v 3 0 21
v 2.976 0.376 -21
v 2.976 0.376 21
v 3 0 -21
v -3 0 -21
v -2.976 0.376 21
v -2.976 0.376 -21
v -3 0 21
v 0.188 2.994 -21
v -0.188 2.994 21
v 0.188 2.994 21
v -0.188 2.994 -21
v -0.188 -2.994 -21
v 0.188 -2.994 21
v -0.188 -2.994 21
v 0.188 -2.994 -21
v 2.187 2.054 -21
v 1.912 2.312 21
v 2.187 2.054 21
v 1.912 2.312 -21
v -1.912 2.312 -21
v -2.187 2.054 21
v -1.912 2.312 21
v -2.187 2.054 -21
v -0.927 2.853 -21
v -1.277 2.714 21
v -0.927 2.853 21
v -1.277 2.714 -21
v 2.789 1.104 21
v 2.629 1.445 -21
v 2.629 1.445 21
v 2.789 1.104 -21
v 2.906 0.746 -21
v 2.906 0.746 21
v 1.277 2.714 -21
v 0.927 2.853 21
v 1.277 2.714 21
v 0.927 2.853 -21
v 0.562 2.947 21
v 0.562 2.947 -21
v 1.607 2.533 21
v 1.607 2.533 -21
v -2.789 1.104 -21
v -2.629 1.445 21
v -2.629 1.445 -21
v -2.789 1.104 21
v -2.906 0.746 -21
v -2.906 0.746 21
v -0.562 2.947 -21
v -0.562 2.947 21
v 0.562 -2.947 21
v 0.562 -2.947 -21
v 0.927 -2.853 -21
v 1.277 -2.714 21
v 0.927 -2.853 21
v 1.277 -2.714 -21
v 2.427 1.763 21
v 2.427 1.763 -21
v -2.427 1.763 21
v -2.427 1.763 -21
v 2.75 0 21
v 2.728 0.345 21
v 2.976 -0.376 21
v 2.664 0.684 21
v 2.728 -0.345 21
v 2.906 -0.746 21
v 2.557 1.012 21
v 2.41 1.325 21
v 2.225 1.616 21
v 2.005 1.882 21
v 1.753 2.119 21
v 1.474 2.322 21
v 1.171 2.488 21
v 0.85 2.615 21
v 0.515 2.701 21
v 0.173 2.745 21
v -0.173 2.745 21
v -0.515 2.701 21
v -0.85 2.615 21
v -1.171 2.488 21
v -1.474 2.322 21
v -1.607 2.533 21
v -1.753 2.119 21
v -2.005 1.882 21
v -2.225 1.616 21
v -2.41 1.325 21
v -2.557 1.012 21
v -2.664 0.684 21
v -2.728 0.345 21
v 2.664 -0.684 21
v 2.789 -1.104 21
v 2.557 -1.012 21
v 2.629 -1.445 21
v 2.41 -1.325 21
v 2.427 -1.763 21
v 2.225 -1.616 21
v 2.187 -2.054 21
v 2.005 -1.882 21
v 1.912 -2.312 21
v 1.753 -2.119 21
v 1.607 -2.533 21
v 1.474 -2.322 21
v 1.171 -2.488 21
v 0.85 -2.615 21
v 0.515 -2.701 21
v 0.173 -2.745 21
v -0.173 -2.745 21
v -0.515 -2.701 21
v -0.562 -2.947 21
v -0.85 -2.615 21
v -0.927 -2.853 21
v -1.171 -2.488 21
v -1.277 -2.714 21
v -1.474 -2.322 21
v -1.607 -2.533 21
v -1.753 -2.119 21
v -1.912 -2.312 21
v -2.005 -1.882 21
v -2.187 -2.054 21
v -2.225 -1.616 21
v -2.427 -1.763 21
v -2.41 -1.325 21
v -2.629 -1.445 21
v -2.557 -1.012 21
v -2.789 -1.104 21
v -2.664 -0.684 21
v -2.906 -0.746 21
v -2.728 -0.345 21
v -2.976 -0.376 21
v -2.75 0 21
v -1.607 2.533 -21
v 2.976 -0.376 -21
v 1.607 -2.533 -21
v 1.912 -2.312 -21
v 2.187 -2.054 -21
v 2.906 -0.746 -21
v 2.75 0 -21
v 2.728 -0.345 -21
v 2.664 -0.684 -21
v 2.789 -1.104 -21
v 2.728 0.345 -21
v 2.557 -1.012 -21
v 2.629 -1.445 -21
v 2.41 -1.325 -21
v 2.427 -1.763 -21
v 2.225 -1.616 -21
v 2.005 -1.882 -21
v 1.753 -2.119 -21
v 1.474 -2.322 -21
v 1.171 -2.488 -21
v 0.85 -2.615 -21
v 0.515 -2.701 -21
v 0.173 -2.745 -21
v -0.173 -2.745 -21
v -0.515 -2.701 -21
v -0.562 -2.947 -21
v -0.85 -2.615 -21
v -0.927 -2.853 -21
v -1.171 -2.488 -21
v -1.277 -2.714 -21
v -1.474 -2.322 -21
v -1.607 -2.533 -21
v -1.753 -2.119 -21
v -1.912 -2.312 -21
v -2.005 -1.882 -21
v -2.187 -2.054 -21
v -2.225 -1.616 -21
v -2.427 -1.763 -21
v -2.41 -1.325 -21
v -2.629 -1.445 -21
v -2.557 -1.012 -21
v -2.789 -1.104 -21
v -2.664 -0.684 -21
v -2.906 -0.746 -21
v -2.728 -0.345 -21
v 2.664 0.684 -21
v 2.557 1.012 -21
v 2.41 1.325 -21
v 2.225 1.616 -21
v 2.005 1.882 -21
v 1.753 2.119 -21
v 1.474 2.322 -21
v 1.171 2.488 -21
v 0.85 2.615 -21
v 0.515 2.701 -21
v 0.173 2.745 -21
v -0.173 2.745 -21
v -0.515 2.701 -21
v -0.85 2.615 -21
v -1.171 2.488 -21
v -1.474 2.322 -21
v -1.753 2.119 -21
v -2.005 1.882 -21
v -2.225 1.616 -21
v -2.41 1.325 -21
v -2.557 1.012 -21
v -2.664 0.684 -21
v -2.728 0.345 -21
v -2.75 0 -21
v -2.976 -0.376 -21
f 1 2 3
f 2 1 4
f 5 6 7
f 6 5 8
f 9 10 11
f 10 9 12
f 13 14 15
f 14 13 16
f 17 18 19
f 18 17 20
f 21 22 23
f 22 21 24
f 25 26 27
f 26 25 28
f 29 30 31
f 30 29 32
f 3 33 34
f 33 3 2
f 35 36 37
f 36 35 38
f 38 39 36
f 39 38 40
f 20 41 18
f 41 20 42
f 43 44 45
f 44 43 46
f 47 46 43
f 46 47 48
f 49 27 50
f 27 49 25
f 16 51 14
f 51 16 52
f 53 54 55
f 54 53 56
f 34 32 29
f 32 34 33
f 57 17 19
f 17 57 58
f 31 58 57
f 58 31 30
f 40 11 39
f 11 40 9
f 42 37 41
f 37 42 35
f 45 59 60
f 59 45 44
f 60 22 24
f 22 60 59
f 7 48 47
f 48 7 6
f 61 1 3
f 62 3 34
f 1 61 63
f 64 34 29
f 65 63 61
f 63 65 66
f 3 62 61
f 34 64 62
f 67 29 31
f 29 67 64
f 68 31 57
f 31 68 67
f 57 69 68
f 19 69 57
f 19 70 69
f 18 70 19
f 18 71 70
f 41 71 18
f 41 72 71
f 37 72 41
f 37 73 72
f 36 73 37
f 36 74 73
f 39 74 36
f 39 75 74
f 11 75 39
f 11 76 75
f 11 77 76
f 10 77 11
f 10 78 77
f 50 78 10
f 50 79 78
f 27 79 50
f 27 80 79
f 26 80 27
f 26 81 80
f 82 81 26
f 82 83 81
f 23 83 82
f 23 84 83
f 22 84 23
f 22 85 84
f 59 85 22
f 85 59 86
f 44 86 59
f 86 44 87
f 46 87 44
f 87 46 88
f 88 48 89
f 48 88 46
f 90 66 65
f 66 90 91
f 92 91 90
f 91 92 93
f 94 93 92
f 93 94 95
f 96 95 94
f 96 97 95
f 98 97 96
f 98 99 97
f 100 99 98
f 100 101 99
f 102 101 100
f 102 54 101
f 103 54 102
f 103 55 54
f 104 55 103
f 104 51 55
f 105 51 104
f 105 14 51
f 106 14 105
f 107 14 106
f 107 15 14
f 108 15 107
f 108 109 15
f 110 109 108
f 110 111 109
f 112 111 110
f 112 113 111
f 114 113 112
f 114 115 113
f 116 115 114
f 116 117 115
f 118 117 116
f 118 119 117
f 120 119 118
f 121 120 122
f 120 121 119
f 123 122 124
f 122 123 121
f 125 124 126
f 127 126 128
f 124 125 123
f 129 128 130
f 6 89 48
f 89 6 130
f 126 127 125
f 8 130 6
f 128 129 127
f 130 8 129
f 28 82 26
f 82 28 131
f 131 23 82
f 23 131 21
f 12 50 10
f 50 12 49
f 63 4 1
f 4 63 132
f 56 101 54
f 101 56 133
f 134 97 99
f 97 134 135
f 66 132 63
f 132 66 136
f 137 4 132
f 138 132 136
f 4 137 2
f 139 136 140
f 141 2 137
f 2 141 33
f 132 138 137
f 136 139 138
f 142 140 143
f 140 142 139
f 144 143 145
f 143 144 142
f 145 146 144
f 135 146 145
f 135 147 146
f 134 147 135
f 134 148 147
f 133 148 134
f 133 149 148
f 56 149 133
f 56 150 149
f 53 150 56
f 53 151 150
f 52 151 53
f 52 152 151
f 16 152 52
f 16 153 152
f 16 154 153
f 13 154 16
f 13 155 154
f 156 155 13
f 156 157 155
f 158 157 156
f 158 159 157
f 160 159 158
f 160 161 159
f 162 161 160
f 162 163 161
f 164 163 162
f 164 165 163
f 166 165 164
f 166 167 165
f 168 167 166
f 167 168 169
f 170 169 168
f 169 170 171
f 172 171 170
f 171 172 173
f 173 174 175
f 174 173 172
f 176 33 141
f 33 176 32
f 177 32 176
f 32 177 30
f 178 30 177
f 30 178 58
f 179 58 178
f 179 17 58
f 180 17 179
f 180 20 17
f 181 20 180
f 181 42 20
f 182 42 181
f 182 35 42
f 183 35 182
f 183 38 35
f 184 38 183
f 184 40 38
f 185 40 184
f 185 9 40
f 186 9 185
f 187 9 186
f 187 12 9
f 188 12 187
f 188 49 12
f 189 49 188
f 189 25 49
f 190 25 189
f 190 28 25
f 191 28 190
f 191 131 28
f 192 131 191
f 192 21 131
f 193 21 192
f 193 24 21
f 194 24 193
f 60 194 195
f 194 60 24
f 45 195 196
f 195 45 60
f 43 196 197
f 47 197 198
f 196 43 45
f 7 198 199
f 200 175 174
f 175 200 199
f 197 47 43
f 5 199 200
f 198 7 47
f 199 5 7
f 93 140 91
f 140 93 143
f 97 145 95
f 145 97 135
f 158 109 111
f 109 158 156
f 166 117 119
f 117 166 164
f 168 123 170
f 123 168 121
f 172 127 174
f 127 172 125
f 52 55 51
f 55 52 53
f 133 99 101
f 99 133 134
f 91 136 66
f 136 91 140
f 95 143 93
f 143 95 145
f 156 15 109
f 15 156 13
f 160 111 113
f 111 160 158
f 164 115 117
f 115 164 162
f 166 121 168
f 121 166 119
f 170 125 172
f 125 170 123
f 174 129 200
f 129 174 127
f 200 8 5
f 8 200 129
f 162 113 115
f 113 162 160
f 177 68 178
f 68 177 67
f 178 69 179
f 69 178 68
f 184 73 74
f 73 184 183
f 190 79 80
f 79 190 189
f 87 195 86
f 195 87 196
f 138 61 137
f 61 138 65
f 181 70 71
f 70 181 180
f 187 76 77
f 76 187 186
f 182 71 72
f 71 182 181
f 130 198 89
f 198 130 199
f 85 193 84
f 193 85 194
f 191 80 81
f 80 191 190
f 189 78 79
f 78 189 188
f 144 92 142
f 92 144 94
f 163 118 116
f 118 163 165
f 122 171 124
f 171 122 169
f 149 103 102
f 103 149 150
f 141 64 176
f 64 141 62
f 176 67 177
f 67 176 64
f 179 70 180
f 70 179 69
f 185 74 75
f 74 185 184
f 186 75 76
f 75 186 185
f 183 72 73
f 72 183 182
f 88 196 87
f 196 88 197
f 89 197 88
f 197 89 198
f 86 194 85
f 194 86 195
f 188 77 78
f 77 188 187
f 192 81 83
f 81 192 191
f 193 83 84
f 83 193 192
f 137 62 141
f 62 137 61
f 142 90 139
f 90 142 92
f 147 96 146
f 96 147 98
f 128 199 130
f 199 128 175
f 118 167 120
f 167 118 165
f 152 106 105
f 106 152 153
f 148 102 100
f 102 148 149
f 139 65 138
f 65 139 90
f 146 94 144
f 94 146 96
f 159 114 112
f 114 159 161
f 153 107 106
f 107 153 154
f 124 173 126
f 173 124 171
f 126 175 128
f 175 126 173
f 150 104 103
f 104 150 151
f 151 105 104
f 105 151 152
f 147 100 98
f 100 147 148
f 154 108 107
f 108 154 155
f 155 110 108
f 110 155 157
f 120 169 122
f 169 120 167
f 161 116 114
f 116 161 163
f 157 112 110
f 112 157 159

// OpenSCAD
$fn = 50;


difference() {
	union() {
		translate(v = [0, 0, -21.0000000000]) {
			cylinder(h = 42, r = 3.0000000000);
		}
	}
	union() {
		translate(v = [0, 0, -100.0000000000]) {
			cylinder(h = 200, r = 2.7500000000);
		}
	}
}
